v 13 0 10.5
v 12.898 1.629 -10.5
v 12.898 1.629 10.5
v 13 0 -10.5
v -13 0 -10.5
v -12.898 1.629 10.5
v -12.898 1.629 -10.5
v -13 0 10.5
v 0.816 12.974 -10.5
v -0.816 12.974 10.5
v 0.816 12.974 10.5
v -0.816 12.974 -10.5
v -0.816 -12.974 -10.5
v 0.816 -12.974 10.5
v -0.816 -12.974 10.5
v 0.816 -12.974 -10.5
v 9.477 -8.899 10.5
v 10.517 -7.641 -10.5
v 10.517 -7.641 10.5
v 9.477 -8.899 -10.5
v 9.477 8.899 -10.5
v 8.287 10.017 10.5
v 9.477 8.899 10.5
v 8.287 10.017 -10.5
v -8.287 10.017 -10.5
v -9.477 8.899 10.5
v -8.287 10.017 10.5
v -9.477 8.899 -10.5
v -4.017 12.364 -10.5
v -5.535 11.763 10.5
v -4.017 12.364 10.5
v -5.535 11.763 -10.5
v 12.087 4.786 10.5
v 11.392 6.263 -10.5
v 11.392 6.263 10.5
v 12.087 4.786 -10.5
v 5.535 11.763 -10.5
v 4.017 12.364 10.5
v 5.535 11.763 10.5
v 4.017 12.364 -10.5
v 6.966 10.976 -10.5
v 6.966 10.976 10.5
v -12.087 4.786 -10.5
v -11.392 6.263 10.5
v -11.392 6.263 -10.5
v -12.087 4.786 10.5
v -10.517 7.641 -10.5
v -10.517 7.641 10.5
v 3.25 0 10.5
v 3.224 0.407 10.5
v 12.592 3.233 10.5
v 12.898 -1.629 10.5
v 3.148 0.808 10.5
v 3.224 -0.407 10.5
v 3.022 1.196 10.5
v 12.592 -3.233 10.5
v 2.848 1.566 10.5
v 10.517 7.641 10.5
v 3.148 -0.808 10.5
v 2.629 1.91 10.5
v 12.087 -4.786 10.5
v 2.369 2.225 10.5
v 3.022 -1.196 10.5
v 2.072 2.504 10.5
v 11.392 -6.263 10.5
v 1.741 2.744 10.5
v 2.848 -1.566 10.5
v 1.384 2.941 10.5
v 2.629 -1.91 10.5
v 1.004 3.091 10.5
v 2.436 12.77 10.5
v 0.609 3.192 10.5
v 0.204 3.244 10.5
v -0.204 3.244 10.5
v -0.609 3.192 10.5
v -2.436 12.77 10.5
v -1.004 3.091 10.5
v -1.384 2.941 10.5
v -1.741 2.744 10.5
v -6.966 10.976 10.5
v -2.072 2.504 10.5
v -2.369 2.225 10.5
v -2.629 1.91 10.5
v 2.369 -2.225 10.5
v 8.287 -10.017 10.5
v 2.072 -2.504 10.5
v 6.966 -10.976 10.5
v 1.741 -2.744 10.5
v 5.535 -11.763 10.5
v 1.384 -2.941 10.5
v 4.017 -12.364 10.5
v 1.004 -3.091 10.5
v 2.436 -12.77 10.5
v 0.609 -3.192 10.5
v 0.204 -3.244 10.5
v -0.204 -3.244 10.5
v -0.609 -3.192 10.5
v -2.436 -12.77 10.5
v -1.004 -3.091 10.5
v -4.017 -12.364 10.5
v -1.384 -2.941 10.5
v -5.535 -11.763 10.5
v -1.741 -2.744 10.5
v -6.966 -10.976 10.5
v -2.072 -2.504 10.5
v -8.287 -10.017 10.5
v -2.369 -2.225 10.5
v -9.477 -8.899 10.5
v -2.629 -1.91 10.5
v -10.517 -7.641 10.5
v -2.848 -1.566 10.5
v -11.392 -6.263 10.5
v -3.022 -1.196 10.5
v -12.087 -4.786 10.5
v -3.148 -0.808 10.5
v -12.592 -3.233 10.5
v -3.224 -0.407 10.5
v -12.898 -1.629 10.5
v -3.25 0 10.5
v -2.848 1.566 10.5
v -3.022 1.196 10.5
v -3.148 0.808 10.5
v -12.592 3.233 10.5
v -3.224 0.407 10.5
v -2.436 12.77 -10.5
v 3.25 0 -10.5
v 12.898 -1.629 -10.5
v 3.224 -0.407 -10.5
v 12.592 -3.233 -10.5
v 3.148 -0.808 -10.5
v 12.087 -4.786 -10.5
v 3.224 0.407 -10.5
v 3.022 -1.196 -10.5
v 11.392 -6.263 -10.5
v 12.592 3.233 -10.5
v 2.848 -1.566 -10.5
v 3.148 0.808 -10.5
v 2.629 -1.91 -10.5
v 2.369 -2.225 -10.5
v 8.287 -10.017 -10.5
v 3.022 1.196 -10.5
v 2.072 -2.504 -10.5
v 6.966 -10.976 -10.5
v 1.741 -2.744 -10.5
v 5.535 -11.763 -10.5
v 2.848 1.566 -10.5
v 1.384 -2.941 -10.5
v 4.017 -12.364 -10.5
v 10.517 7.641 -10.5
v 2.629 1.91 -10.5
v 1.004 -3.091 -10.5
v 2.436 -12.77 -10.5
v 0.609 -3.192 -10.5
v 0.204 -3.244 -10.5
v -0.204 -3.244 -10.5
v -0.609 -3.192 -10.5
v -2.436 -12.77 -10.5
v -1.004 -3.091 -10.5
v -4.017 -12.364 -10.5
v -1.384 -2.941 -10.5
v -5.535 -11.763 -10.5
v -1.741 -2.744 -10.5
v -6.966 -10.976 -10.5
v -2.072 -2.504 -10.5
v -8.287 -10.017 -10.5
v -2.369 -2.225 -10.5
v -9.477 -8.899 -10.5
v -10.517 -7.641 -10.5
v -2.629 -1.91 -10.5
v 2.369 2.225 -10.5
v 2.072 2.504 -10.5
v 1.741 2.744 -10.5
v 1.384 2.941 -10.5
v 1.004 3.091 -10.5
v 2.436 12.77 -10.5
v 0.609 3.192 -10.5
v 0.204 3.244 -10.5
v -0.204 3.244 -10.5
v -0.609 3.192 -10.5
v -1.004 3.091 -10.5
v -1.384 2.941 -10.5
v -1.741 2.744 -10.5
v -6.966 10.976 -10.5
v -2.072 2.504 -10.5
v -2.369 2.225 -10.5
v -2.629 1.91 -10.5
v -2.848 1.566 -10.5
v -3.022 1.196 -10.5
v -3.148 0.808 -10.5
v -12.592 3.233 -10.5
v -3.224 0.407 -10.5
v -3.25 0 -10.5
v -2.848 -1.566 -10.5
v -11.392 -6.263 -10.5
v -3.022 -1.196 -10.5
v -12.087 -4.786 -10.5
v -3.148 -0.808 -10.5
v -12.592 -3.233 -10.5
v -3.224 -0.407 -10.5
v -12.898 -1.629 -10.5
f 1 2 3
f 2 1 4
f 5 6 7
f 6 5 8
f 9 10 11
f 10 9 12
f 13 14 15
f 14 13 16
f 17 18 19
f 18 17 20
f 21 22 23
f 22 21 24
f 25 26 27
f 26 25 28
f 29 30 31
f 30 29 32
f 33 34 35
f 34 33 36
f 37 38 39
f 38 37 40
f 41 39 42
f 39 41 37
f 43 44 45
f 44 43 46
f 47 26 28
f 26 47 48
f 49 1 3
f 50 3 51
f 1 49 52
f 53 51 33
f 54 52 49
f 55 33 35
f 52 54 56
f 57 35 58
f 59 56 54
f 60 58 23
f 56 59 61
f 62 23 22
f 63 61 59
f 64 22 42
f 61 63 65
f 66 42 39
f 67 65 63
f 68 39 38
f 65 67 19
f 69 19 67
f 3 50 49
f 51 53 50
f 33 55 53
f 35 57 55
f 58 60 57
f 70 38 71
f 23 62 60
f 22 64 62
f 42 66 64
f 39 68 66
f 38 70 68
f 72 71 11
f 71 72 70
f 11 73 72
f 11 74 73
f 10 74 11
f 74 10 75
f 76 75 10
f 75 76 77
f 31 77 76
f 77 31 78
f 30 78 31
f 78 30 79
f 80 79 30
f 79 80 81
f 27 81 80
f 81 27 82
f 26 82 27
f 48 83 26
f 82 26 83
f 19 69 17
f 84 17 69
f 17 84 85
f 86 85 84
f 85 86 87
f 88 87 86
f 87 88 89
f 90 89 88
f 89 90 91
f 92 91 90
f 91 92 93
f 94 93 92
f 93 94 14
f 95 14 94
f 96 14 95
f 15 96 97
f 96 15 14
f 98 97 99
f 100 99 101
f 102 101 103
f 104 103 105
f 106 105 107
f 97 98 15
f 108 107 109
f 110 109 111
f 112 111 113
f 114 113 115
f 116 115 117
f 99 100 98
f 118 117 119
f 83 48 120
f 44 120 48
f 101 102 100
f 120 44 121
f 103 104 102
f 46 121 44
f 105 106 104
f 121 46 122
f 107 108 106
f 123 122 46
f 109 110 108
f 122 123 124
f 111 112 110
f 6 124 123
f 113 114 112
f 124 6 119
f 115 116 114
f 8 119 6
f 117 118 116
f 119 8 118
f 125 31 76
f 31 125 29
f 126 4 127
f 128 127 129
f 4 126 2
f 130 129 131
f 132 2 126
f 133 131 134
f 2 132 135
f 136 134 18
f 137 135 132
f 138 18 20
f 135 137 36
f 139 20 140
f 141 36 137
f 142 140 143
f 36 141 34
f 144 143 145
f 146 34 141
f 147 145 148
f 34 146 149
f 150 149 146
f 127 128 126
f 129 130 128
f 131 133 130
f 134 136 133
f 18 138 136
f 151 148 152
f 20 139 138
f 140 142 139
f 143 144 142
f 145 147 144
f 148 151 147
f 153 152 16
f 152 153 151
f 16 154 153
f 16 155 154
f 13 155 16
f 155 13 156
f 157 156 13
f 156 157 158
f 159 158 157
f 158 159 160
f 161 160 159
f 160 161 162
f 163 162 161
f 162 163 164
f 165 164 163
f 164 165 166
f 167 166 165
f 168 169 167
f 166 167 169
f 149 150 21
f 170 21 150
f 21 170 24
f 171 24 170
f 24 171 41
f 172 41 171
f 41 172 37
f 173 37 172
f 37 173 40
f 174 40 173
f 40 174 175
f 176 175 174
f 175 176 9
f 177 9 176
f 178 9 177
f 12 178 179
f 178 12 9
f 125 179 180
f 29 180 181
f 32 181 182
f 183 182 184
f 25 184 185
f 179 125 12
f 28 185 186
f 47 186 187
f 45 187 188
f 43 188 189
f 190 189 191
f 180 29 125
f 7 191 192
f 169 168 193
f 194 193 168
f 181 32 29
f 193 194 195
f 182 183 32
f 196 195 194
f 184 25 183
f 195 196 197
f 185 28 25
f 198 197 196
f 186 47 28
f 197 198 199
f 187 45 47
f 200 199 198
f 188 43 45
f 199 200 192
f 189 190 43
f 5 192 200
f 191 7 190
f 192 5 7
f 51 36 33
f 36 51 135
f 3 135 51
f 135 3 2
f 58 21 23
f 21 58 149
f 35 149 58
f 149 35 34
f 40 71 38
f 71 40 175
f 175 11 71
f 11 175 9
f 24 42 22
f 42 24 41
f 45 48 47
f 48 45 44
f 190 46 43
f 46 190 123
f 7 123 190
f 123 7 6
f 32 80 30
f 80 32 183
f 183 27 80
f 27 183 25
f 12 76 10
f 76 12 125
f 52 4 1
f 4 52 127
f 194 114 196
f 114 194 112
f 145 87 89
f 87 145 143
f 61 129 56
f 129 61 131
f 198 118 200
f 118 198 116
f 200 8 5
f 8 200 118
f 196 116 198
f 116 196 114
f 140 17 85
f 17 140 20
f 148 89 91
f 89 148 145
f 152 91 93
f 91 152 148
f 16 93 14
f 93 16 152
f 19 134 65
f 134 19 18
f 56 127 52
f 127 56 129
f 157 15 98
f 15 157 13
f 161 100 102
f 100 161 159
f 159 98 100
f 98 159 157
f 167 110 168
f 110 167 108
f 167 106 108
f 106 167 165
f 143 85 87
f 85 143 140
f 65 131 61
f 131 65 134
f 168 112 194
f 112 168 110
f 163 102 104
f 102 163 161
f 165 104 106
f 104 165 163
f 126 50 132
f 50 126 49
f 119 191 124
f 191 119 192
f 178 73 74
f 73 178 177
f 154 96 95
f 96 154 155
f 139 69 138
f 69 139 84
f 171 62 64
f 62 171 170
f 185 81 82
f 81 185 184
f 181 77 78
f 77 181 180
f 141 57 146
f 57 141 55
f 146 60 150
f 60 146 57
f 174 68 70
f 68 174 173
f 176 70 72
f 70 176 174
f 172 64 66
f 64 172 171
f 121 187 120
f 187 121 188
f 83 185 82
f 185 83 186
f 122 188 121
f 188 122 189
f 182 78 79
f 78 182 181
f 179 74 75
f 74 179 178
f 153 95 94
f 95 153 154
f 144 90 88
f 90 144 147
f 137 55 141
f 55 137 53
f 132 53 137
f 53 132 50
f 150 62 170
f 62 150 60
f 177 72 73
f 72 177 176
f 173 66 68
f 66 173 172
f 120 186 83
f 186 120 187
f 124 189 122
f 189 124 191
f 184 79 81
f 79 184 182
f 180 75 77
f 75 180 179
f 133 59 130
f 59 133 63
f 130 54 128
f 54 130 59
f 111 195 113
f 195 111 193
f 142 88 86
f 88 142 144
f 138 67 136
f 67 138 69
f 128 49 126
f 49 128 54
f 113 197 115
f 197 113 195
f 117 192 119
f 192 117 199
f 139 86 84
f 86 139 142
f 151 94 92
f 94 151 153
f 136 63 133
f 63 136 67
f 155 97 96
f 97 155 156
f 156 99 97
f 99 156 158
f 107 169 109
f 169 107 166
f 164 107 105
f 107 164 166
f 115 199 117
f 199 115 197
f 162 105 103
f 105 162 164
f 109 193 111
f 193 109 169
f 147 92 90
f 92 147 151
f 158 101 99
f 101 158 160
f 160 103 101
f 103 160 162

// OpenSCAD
$fn = 50;


difference() {
	union() {
		translate(v = [0, 0, -10.5000000000]) {
			cylinder(h = 21, r = 13.0000000000);
		}
	}
	union() {
		translate(v = [0, 0, -100.0000000000]) {
			cylinder(h = 200, r = 3.2500000000);
		}
	}
}
